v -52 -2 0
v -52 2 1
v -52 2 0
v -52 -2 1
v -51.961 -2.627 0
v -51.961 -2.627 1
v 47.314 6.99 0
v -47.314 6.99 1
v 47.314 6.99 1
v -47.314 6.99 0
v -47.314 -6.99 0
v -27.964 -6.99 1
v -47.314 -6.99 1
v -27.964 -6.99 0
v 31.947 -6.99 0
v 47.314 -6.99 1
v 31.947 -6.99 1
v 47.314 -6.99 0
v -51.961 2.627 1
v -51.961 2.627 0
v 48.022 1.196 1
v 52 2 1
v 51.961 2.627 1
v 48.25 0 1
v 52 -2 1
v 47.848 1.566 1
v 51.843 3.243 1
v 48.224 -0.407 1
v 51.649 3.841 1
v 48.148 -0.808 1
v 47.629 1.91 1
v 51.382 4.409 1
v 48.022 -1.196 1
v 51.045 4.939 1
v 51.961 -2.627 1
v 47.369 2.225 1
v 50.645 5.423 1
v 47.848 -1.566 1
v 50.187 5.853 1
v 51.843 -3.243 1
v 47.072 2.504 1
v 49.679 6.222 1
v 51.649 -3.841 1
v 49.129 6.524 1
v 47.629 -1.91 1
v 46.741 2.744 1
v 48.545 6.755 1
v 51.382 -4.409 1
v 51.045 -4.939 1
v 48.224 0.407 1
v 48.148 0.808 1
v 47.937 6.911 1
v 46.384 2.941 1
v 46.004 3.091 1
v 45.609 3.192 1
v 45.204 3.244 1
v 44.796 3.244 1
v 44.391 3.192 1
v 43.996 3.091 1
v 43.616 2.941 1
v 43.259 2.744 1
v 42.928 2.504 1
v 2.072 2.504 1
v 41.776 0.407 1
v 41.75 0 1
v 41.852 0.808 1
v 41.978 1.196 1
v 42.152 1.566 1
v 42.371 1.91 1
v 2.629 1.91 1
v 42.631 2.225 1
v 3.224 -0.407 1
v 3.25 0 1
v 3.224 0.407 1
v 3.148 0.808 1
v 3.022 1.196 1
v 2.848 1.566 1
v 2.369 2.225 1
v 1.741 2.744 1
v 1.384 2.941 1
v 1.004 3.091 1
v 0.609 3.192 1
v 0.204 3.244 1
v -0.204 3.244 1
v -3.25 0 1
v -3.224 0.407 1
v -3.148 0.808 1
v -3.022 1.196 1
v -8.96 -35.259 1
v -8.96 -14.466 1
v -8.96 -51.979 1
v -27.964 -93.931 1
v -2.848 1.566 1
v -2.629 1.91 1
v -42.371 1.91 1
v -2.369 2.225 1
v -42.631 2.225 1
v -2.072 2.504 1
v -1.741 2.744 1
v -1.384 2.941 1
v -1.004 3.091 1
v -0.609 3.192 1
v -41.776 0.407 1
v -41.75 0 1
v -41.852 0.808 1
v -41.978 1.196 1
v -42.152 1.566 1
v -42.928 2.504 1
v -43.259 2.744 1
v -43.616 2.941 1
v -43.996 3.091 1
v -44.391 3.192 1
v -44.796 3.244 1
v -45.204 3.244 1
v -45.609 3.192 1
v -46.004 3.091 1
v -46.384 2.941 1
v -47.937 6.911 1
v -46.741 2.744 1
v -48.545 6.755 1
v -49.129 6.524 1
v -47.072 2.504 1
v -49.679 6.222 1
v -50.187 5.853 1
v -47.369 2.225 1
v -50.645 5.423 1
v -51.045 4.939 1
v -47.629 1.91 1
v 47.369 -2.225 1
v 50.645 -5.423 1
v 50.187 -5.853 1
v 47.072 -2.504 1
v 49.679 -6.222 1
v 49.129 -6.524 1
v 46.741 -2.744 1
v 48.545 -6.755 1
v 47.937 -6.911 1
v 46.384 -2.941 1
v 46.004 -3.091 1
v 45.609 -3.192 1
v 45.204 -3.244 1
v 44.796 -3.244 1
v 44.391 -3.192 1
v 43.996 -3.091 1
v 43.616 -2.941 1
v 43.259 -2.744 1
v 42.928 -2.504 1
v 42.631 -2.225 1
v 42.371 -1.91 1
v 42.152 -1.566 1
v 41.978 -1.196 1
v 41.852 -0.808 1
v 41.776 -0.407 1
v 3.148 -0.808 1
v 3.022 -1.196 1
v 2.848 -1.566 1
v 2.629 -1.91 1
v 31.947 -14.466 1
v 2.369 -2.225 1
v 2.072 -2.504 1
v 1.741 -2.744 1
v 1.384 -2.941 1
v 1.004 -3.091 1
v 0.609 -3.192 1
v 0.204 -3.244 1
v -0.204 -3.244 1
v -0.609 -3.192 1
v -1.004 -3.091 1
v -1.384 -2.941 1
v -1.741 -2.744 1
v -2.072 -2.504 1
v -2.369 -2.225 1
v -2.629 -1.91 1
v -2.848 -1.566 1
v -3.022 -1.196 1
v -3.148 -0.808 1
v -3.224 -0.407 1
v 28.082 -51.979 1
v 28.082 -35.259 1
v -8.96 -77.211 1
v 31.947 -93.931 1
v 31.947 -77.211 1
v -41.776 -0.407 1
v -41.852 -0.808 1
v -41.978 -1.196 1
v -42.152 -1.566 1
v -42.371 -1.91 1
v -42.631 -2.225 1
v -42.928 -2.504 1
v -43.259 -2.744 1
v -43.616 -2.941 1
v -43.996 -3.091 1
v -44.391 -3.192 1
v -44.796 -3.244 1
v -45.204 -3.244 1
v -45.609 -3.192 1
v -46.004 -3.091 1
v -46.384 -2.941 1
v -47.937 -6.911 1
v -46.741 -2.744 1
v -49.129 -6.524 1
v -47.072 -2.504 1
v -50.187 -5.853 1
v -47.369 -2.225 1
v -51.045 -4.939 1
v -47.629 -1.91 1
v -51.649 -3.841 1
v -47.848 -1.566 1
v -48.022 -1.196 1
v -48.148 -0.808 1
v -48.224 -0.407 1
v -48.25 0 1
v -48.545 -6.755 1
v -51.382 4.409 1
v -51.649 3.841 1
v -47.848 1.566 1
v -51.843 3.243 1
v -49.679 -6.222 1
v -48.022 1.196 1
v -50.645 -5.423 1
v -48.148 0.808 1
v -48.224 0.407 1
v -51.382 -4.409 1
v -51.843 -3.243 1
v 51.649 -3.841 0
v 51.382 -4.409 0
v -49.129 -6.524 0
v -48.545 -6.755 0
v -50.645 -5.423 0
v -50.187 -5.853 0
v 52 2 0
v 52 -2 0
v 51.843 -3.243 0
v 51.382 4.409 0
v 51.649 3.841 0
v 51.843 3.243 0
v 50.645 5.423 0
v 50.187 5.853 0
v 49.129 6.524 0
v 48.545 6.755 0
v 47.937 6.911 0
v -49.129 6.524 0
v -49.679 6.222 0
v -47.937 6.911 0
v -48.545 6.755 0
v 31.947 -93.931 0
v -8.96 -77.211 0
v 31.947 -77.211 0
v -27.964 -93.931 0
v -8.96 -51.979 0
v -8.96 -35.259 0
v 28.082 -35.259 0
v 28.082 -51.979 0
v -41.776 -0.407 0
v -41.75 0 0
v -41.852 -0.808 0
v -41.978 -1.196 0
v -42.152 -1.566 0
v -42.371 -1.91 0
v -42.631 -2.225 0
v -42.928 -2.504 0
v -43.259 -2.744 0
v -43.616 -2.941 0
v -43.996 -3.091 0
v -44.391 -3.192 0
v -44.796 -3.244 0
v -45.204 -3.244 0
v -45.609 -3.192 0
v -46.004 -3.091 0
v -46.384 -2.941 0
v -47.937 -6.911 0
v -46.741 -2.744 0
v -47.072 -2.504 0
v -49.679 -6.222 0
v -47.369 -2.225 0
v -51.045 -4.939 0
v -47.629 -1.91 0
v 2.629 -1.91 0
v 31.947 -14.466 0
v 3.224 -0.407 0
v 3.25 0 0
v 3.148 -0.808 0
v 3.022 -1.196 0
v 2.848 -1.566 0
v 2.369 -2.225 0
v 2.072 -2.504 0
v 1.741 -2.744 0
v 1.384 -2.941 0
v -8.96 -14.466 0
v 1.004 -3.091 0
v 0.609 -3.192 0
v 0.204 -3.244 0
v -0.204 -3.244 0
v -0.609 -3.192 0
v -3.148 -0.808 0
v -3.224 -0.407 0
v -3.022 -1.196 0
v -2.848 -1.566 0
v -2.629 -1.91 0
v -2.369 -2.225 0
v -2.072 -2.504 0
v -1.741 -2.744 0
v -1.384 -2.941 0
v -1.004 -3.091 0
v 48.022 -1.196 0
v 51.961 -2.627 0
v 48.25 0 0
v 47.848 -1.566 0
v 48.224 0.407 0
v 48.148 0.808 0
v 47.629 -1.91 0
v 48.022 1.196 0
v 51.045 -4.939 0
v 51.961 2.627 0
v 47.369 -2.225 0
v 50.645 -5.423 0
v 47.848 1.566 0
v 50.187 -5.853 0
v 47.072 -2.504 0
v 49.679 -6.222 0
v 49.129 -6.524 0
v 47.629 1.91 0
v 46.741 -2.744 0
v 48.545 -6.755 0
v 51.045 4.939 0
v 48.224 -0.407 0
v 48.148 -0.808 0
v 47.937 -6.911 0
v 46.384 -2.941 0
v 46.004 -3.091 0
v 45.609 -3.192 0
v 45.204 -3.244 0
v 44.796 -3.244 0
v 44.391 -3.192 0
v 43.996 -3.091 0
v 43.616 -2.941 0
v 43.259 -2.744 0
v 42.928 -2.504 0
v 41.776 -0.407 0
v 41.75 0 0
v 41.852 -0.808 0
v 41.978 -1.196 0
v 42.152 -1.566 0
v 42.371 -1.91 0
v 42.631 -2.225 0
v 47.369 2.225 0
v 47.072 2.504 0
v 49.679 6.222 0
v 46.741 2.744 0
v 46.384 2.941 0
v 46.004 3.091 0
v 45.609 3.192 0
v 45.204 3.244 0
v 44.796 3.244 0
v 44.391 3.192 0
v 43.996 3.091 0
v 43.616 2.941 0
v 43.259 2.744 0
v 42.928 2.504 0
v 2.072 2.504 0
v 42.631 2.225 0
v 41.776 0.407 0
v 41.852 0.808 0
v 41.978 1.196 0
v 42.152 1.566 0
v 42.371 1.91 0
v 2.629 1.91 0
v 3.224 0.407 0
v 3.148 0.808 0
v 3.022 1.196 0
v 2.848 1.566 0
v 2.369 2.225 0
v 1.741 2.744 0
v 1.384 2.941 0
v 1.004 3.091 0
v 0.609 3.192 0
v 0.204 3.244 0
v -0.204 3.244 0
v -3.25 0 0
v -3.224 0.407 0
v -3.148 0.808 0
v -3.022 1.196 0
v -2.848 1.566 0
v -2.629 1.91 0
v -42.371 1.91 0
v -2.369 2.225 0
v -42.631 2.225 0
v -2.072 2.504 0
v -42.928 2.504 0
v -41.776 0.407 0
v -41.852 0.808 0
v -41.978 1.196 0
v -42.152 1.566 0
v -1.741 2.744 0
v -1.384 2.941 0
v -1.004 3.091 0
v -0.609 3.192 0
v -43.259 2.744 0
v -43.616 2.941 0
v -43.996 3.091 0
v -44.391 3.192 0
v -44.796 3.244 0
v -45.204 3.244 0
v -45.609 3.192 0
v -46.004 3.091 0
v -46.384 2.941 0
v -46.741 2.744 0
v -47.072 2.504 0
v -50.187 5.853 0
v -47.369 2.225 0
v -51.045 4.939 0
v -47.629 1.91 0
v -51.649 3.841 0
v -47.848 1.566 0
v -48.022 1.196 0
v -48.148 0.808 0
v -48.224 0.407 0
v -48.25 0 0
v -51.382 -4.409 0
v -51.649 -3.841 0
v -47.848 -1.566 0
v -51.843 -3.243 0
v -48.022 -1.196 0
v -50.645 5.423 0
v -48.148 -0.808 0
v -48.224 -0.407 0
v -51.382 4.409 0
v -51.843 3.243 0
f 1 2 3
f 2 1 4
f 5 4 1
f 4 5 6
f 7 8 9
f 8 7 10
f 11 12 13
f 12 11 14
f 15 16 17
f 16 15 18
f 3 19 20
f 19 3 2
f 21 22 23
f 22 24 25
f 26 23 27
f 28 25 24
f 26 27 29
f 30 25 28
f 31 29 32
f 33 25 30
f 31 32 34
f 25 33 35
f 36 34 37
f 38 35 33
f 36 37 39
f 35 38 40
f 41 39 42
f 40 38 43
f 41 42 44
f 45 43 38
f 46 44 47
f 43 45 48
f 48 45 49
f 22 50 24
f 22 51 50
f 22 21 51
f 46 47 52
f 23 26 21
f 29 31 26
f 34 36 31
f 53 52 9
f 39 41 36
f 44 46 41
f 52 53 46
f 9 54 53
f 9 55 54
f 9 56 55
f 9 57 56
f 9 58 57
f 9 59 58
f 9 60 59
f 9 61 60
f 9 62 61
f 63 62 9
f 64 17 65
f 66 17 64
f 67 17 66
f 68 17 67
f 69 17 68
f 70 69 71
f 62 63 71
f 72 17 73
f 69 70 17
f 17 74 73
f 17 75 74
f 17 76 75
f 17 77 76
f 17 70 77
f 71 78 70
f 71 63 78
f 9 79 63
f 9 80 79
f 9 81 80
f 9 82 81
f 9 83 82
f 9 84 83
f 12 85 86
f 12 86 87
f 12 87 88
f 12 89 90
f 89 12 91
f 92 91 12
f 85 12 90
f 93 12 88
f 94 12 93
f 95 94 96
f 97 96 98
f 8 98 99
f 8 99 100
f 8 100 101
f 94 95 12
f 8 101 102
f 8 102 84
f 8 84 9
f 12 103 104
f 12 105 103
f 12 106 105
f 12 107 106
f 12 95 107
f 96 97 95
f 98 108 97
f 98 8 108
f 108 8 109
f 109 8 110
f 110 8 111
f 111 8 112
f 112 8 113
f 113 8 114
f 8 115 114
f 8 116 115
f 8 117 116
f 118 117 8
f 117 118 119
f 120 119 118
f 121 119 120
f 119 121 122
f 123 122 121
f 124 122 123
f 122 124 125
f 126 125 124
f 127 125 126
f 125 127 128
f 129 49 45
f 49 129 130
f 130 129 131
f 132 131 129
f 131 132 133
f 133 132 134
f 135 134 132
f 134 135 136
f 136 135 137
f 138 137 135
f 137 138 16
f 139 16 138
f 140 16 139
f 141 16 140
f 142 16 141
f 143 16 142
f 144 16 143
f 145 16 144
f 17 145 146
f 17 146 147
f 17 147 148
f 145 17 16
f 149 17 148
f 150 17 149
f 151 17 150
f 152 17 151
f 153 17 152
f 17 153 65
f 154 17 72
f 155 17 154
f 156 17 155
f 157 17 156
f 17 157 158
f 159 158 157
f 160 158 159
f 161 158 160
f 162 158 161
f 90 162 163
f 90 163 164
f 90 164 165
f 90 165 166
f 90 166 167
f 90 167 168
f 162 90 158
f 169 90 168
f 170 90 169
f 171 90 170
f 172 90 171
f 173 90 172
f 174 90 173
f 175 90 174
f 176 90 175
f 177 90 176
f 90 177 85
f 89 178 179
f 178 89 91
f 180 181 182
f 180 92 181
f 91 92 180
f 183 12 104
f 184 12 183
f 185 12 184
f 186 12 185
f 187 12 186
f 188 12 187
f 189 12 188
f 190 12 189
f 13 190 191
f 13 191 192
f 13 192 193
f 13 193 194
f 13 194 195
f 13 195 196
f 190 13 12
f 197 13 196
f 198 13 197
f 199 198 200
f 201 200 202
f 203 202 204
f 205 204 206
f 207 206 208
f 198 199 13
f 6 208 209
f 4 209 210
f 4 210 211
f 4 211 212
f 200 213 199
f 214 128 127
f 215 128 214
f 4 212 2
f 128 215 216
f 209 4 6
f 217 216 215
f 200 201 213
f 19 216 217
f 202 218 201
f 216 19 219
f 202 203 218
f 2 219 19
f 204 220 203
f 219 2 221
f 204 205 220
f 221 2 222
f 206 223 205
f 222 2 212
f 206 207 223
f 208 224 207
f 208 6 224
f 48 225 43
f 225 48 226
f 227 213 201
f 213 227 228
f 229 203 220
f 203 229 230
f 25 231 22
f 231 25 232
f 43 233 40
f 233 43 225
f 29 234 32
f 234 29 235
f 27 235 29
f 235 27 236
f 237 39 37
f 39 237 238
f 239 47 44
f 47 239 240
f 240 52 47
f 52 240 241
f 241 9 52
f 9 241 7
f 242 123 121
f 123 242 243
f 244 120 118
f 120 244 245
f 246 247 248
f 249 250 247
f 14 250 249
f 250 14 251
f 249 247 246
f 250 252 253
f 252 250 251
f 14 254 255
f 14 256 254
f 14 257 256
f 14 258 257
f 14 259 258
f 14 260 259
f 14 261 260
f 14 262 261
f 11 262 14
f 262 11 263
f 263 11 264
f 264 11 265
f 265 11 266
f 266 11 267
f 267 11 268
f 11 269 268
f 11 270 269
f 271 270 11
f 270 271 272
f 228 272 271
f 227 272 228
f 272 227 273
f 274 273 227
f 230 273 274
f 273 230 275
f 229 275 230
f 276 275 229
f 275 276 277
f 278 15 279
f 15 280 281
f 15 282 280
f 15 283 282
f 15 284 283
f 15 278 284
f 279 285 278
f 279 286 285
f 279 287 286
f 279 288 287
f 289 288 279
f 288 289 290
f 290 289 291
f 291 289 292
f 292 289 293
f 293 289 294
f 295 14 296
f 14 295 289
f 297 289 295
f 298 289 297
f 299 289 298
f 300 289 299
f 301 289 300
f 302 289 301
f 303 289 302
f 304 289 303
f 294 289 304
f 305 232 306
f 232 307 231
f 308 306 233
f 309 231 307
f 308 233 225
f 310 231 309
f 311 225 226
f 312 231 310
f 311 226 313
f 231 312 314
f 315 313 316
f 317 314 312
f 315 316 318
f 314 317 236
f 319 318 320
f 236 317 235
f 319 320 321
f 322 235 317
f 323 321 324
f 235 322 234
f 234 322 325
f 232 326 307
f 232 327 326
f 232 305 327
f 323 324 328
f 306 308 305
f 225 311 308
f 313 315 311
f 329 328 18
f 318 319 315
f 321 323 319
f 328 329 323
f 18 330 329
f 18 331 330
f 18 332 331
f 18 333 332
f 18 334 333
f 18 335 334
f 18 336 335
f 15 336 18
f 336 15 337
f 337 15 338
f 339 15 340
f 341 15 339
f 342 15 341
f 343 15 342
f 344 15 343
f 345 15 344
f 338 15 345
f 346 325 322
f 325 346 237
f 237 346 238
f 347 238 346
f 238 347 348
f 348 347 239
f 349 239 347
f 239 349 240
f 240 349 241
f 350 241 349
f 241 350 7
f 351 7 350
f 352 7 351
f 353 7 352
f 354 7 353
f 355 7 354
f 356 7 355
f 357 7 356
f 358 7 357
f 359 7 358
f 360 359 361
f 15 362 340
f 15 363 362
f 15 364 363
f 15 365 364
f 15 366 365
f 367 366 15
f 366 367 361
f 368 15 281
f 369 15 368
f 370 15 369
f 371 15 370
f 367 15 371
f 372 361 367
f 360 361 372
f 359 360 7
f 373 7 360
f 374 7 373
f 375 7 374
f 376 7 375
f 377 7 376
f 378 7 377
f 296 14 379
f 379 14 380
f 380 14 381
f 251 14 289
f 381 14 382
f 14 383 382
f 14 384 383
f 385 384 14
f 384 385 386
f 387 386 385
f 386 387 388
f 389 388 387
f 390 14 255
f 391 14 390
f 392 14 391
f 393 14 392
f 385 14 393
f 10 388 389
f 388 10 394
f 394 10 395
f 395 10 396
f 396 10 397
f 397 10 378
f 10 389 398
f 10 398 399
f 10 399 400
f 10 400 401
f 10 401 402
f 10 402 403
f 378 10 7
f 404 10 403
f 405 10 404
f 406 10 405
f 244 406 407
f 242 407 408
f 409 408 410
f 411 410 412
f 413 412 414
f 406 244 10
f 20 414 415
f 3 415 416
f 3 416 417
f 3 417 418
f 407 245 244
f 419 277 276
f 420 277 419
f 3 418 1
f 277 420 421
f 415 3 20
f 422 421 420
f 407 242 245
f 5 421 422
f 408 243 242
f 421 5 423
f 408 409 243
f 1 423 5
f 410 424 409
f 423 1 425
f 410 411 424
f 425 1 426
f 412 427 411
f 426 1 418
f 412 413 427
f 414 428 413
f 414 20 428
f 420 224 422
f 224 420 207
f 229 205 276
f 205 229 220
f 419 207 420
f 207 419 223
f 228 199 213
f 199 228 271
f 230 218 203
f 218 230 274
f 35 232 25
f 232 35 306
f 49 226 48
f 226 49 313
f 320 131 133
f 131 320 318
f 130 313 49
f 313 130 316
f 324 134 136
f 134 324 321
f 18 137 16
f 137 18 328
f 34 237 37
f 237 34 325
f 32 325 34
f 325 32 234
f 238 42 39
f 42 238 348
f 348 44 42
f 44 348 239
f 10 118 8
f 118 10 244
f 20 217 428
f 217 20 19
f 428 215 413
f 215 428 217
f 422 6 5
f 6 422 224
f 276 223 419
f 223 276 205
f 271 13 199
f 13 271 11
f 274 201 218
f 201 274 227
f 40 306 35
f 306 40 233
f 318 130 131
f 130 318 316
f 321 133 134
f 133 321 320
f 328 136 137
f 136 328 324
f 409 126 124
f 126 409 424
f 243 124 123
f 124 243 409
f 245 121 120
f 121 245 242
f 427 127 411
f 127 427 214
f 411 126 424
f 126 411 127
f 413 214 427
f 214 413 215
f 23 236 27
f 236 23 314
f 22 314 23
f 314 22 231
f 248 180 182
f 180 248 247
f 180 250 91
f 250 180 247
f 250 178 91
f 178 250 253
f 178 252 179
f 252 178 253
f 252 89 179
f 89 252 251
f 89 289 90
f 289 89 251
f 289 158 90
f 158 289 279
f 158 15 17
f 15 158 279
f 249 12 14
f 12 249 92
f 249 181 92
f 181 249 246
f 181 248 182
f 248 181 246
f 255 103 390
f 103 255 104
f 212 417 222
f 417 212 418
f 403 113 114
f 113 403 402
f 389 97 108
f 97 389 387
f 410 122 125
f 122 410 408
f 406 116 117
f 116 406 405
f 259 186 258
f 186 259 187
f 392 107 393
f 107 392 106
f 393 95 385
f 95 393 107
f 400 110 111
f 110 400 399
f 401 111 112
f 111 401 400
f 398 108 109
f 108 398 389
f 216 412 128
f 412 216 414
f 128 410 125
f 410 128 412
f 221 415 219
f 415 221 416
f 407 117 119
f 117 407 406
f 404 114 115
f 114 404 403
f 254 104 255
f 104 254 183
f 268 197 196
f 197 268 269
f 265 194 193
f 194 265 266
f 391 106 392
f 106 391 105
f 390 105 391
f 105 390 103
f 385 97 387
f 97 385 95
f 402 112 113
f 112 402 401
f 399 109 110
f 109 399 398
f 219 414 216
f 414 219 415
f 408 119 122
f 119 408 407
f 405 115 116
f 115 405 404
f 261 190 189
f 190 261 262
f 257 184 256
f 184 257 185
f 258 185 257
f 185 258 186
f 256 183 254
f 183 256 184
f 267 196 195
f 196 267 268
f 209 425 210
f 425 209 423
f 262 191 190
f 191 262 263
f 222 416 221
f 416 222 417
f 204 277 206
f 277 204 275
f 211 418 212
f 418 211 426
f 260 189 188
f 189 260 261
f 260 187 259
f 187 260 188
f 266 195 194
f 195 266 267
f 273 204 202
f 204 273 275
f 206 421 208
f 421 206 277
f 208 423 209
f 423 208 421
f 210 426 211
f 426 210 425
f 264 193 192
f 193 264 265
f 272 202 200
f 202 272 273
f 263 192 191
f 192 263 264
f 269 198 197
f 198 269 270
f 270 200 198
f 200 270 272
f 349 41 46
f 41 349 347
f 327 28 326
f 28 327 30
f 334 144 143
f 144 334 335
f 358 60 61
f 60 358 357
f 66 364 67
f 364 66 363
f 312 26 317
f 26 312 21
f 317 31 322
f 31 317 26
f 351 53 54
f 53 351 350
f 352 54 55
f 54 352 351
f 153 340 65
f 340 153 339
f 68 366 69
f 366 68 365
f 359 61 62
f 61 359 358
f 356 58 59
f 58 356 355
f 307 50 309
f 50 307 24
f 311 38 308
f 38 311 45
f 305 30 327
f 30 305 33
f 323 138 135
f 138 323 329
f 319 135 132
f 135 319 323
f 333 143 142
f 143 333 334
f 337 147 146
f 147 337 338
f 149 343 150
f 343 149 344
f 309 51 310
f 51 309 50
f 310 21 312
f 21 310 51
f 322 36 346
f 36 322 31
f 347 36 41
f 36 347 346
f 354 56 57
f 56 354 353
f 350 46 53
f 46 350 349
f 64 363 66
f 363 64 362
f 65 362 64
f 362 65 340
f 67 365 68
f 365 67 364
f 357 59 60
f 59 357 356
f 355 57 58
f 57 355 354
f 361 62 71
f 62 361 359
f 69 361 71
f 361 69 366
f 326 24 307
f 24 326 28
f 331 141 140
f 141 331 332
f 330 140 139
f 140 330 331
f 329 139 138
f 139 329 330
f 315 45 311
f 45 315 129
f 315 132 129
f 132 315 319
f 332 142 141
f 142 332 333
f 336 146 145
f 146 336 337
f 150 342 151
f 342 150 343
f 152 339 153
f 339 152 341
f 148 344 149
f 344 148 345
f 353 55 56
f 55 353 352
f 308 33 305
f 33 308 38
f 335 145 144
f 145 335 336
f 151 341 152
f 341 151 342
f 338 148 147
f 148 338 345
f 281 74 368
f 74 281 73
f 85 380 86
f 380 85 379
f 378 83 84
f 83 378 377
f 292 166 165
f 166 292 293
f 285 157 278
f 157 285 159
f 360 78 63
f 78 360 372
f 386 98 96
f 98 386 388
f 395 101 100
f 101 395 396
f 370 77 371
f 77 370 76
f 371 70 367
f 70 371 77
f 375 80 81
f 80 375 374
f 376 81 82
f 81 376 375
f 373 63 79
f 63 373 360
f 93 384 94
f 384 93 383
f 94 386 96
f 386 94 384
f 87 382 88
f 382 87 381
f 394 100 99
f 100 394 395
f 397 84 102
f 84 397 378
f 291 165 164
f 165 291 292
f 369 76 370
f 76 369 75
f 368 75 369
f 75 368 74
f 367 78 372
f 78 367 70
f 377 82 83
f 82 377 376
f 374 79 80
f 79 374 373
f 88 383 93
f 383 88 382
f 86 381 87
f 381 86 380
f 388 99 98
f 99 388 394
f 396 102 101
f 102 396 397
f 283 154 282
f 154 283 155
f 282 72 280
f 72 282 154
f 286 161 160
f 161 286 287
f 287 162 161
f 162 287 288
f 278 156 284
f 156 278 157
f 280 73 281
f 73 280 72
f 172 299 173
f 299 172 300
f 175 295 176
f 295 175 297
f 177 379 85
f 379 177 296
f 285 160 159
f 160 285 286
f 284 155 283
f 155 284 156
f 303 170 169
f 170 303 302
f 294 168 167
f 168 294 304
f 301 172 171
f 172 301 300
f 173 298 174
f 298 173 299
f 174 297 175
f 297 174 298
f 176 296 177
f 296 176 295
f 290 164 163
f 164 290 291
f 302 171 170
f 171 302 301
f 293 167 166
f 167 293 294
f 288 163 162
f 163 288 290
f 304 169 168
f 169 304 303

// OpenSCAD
$fn = 50;


difference() {
	union() {
		translate(v = [0, 0, 0]) {
			rotate(a = [0, 0, 0]) {
				hull() {
					translate(v = [-47.0000000000, 2.0000000000, 0]) {
						rotate(a = [0, 0, 0]) {
							translate(v = [0, 0, 0]) {
								rotate(a = [0, 0, 0]) {
									cylinder(h = 1, r = 5);
								}
							}
						}
					}
					translate(v = [47.0000000000, 2.0000000000, 0]) {
						rotate(a = [0, 0, 0]) {
							translate(v = [0, 0, 0]) {
								rotate(a = [0, 0, 0]) {
									cylinder(h = 1, r = 5);
								}
							}
						}
					}
					translate(v = [-47.0000000000, -2.0000000000, 0]) {
						rotate(a = [0, 0, 0]) {
							translate(v = [0, 0, 0]) {
								rotate(a = [0, 0, 0]) {
									cylinder(h = 1, r = 5);
								}
							}
						}
					}
					translate(v = [47.0000000000, -2.0000000000, 0]) {
						rotate(a = [0, 0, 0]) {
							translate(v = [0, 0, 0]) {
								rotate(a = [0, 0, 0]) {
									cylinder(h = 1, r = 5);
								}
							}
						}
					}
				}
			}
		}
		translate(v = [0, 0, 0]) {
			rotate(a = [0, 0, 0]) {
				linear_extrude(height = 1) {
					text(font = "DejaVu Sans Mono:style=Bold", halign = "center", size = 95.0000000000, text = "E", valign = "top");
				}
			}
		}
	}
	union() {
		translate(v = [-45.0000000000, 0.0000000000, -125.0000000000]) {
			rotate(a = [0, 0, 0]) {
				cylinder(h = 250, r = 3.2500000000);
			}
		}
		translate(v = [45.0000000000, 0.0000000000, -125.0000000000]) {
			rotate(a = [0, 0, 0]) {
				cylinder(h = 250, r = 3.2500000000);
			}
		}
		translate(v = [45.0000000000, 0.0000000000, -125.0000000000]) {
			rotate(a = [0, 0, 0]) {
				cylinder(h = 250, r = 3.2500000000);
			}
		}
		translate(v = [0, 0, -125.0000000000]) {
			rotate(a = [0, 0, 0]) {
				cylinder(h = 250, r = 3.2500000000);
			}
		}
	}
}
